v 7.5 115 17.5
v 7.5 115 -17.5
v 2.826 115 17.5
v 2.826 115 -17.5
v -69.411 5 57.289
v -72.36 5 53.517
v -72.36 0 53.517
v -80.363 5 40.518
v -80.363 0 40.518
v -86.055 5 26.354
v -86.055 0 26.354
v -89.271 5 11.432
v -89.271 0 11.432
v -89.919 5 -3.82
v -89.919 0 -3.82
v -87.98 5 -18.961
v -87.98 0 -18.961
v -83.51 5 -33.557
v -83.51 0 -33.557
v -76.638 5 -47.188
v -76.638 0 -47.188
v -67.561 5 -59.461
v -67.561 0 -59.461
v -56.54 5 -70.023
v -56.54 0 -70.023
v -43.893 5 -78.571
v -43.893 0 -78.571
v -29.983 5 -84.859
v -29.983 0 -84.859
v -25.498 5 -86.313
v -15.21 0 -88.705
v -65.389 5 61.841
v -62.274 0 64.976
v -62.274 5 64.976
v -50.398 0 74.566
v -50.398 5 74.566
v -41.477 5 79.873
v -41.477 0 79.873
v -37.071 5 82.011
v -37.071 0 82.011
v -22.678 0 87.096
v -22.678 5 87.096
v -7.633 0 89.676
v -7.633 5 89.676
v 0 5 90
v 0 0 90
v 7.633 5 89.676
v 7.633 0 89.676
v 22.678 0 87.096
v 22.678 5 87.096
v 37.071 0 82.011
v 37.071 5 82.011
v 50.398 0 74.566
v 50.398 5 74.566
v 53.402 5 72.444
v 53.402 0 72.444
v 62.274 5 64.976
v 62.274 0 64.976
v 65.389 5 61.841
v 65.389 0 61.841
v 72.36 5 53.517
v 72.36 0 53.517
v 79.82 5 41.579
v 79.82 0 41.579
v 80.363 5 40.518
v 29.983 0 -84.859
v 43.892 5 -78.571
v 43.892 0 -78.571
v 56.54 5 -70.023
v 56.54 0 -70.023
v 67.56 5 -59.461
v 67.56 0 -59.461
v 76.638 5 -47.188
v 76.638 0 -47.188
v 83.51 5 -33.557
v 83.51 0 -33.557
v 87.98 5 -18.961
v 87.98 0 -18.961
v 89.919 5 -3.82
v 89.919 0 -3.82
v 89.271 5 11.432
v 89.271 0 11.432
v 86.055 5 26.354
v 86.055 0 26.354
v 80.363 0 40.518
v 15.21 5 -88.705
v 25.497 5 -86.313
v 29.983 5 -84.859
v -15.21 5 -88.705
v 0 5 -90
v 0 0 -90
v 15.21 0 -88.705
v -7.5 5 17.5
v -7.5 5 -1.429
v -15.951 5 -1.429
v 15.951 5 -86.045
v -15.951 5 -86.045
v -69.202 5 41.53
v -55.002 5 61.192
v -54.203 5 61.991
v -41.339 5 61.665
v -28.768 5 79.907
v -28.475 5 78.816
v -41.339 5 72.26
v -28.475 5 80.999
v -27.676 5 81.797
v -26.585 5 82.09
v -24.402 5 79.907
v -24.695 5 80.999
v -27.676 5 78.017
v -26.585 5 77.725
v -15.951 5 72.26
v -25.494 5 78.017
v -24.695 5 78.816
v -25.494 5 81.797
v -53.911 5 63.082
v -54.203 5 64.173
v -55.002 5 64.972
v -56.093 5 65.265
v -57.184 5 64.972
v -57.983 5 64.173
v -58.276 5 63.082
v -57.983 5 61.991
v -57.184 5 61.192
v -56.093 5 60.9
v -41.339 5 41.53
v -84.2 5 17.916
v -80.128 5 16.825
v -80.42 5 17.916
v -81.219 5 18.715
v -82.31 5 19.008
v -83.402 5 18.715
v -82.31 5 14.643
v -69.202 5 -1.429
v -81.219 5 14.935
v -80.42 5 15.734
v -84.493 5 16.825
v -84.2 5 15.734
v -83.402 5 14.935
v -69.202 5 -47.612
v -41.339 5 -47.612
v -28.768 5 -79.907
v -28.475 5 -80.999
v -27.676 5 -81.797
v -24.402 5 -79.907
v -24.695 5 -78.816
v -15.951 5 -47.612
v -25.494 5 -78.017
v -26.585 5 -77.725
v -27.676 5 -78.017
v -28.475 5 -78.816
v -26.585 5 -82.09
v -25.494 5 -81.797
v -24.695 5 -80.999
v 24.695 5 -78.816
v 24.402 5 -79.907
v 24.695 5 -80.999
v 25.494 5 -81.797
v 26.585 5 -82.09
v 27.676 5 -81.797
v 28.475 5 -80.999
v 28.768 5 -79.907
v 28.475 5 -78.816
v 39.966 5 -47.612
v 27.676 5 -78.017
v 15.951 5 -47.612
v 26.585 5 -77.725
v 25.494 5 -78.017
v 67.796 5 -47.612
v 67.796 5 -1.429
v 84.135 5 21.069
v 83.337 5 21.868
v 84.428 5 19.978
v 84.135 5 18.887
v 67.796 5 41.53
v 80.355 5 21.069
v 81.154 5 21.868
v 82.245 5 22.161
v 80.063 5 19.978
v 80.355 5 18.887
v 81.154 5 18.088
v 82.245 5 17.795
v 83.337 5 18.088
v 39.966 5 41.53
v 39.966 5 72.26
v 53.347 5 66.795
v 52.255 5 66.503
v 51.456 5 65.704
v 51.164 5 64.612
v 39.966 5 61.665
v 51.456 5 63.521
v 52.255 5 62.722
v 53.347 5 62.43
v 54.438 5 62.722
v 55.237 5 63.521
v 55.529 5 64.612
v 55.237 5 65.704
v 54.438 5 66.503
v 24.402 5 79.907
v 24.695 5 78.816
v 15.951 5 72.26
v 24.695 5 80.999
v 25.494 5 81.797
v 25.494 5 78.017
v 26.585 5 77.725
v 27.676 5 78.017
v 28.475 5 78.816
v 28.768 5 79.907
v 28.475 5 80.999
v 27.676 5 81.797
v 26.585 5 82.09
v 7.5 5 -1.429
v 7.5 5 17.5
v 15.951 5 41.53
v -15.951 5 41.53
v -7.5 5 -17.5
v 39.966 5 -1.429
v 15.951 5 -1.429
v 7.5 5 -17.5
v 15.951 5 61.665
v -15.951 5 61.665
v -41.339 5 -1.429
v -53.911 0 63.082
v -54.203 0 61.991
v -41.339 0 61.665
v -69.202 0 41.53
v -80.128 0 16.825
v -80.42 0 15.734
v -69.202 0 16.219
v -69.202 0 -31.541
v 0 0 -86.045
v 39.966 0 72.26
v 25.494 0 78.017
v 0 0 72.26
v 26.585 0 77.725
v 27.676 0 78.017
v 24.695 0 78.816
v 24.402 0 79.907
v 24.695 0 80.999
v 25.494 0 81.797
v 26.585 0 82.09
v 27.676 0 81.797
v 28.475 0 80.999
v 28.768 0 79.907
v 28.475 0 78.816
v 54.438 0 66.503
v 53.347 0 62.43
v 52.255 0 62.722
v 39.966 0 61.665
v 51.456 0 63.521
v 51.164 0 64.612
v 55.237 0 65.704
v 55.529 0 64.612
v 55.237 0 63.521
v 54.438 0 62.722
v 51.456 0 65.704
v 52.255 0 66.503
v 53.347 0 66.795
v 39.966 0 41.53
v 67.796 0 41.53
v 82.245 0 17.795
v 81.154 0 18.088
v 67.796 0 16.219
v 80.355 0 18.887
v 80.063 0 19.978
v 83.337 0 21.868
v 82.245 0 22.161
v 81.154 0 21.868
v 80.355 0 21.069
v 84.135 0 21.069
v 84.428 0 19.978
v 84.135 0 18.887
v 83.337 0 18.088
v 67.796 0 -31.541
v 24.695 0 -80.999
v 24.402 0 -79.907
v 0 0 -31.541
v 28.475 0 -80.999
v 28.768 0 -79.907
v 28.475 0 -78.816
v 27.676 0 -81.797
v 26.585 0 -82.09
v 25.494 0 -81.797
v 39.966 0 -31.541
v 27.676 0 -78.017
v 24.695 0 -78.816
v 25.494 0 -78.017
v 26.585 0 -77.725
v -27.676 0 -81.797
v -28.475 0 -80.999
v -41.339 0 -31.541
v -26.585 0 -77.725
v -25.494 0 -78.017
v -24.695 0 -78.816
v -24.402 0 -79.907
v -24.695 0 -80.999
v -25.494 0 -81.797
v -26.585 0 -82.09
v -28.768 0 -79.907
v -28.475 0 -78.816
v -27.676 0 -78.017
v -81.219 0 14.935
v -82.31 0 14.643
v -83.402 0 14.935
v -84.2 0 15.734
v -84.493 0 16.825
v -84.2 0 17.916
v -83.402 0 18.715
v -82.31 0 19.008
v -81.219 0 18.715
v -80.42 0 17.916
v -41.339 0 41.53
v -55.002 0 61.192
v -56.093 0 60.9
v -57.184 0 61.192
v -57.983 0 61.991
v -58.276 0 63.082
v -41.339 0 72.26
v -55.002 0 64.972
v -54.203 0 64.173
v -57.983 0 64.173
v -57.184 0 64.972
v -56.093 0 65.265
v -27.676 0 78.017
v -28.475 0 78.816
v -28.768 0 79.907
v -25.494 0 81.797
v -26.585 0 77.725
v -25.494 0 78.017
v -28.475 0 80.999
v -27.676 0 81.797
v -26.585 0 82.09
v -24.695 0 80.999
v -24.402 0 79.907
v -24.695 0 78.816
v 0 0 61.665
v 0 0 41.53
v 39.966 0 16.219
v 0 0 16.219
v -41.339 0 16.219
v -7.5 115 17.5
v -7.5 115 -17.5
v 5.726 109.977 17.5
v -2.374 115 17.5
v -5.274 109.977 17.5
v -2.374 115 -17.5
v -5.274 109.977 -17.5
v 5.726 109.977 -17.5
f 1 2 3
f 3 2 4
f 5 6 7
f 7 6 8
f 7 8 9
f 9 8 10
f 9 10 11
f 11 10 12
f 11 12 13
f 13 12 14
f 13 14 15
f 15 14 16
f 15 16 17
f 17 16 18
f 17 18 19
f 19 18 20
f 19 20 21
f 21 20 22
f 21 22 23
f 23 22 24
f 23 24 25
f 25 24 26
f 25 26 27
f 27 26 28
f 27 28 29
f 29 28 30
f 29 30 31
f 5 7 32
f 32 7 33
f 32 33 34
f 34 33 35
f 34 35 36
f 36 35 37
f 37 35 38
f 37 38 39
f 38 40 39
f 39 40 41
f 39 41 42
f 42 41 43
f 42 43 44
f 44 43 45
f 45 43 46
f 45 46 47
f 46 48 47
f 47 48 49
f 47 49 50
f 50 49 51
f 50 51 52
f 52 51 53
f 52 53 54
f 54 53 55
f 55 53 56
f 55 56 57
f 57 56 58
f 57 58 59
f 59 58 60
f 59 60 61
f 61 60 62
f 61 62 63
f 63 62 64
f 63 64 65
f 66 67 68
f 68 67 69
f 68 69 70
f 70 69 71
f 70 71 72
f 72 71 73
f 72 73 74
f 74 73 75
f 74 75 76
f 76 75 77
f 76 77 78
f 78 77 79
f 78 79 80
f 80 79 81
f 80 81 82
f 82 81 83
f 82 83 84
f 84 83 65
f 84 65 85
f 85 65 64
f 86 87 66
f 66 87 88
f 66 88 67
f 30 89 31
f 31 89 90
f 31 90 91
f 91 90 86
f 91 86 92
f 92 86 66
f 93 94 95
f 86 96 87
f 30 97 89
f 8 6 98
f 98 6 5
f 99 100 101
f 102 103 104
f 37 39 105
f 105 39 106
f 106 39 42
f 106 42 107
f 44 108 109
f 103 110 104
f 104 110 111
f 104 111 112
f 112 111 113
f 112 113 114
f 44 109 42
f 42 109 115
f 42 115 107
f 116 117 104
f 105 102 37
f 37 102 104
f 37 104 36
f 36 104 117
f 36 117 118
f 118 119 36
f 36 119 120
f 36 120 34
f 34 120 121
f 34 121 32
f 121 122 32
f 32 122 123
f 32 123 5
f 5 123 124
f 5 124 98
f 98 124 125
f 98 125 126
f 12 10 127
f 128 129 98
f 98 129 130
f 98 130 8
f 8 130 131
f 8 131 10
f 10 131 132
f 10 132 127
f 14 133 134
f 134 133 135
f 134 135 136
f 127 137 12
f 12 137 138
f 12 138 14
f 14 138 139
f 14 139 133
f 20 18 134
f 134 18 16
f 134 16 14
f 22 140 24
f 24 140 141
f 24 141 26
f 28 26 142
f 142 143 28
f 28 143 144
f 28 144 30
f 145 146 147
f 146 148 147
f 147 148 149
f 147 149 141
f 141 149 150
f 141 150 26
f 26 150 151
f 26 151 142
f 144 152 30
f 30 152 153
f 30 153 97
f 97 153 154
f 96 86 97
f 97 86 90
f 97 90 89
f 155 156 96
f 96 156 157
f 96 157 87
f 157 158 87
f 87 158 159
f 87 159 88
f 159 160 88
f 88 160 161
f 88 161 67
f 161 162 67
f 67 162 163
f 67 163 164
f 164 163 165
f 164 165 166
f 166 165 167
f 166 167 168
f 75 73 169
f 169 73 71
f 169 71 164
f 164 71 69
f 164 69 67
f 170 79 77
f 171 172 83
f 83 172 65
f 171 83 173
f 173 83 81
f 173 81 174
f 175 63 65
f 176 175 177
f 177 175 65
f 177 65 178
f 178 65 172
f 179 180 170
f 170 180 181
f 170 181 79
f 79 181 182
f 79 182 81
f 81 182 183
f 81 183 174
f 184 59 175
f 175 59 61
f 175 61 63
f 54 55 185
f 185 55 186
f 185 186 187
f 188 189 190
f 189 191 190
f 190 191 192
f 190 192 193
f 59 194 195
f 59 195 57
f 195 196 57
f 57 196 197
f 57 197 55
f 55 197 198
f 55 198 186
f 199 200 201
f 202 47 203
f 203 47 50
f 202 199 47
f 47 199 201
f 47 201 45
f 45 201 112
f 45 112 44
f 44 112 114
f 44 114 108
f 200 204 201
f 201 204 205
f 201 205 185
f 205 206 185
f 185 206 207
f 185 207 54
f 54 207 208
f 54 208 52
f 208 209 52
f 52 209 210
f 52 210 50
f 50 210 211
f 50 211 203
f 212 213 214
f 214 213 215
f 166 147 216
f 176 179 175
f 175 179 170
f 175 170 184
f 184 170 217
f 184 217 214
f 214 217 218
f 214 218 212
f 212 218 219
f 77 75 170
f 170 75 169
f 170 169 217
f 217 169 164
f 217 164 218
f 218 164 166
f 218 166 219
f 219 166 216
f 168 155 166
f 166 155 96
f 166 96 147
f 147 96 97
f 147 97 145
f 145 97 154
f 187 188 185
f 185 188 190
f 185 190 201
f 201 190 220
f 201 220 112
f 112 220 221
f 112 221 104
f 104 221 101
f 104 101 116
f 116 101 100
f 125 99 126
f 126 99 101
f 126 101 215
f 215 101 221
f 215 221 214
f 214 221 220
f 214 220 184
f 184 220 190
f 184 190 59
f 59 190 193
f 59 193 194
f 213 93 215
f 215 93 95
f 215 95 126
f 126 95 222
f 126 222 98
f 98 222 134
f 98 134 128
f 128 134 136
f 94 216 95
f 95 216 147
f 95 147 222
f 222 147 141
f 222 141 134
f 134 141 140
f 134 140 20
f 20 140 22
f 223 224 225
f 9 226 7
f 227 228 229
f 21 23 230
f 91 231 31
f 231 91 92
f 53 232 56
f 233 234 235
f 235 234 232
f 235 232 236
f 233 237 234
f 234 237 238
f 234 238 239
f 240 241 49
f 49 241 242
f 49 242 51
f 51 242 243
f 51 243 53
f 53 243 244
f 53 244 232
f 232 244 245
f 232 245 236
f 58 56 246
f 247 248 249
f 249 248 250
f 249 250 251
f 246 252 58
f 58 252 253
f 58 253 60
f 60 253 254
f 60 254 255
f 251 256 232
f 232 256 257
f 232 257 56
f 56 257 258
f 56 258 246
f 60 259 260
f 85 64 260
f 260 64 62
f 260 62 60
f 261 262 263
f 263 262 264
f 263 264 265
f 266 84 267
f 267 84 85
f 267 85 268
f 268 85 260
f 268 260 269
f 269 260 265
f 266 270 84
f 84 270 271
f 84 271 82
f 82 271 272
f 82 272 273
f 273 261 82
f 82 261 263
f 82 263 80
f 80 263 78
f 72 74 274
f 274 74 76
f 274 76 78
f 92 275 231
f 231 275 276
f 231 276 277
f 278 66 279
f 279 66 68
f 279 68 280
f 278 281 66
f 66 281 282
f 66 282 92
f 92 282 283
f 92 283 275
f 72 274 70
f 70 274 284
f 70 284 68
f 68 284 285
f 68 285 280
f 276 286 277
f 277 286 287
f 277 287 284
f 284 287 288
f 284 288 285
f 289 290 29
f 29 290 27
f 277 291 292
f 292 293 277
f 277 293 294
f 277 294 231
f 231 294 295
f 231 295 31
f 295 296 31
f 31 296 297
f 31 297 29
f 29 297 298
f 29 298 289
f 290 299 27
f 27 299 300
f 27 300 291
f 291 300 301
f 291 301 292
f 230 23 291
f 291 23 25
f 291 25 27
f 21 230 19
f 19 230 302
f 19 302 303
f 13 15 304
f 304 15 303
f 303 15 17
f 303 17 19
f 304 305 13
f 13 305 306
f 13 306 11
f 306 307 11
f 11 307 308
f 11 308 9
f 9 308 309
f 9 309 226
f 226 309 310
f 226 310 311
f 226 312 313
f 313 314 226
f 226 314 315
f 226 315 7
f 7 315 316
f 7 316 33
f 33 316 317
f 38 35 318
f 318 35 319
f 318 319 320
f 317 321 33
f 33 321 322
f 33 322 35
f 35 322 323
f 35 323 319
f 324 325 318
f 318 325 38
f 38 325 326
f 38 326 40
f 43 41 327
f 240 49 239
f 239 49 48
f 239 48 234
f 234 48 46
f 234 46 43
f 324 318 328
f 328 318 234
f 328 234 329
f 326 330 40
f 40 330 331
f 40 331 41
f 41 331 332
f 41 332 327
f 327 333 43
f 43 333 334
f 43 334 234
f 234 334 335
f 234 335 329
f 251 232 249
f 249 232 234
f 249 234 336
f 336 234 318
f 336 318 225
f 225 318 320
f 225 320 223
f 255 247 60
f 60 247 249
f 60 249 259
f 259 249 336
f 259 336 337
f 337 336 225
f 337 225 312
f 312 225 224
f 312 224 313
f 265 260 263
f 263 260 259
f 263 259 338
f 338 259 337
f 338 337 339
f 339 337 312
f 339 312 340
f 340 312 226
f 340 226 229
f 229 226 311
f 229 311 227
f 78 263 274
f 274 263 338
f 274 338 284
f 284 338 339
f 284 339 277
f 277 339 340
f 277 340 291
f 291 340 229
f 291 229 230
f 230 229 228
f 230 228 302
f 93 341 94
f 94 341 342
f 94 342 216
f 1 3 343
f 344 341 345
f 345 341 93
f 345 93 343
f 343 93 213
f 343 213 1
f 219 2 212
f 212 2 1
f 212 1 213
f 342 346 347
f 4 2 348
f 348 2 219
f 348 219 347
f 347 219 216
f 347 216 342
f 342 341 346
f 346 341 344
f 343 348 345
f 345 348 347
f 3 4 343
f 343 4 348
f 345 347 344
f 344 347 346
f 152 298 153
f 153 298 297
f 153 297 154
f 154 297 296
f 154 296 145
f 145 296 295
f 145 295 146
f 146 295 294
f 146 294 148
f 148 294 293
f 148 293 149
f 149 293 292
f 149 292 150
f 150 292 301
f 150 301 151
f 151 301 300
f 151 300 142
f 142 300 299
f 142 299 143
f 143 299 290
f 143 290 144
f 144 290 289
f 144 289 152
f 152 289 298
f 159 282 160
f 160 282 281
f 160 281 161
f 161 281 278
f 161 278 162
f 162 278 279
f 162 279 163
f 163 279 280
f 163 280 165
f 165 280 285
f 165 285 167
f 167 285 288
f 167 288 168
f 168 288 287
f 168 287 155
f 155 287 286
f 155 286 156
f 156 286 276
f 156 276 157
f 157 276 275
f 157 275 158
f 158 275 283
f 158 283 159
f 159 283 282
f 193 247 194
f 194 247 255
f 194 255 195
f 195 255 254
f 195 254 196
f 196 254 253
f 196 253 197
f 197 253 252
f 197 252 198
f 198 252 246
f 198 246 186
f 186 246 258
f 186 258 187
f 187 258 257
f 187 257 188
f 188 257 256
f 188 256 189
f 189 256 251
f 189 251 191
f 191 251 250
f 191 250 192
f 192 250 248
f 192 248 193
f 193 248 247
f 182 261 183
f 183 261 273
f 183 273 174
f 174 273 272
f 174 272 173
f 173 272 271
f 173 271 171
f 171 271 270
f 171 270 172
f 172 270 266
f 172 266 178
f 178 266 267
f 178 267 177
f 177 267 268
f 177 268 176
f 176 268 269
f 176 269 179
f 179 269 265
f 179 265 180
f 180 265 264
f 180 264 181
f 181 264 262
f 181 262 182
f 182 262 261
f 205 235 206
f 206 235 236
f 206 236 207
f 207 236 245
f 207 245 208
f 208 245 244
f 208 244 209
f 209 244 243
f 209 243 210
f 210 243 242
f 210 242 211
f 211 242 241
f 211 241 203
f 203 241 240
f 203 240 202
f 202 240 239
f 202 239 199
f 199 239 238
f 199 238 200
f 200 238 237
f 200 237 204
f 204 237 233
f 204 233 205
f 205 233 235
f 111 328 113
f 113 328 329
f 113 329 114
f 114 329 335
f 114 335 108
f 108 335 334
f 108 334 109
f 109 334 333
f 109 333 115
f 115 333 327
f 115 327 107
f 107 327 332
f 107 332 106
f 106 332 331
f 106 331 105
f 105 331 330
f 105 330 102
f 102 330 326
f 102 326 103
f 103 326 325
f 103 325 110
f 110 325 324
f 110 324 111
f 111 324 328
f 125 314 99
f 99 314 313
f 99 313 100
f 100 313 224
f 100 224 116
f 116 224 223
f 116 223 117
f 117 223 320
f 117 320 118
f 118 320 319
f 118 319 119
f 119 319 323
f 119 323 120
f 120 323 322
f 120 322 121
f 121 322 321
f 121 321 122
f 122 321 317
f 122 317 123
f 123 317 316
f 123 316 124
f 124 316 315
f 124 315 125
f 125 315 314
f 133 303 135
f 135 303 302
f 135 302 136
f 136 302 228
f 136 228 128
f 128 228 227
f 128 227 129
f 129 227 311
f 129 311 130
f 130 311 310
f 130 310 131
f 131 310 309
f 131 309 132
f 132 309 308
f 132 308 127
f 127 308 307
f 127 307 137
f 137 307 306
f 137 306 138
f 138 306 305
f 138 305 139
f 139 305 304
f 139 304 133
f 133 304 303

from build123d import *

# Parameters (mm, degrees)
SKETCH1_R           = 90
BOSS_EXTRUDE1_DEPTH = 5
SKETCH2_W           = 15
SKETCH2_H           = 35
BOSS_EXTRUDE2_DEPTH = 110
CUT_EXTRUDE1_DEPTH  = 36
SKETCH4_R           = 2.18255
CUT_EXTRUDE2_DEPTH  = 62


with BuildPart() as part:
    # Sketch1 → Boss-Extrude1 (new body)
    with BuildSketch(Plane(origin=(0, 0, 0), x_dir=(1, 0, 0), z_dir=(0, 1, 0))):
        with Locations(Location((0, 0, 0), (0, 0, 270))):
            Circle(SKETCH1_R)
    extrude(amount=BOSS_EXTRUDE1_DEPTH)

    # Sketch2 → Boss-Extrude2 (add)
    with BuildSketch(Plane(origin=(0, 5, 0), x_dir=(1, 0, 0), z_dir=(0, 1, 0))):
        Rectangle(SKETCH2_W, SKETCH2_H)
    extrude(amount=BOSS_EXTRUDE2_DEPTH)

    # Sketch3 → Cut-Extrude1 (cut)
    with BuildSketch(Plane.XY.offset(17.5)):
        Polygon((-2.373551685, 115), (2.826448315, 115), (5.726448315, 109.977052658), (-5.273551685, 109.977052658), align=None)
    extrude(amount=-CUT_EXTRUDE1_DEPTH, mode=Mode.SUBTRACT)

    # Sketch4 → Cut-Extrude2 (cut)
    with BuildSketch(Plane(origin=(0, 0, 0), x_dir=(-1, 0, 0), z_dir=(0, -1, 0))):
        with Locations(Location((-26.585, 79.907325251, 0), (0, 0, 90))):
            Circle(SKETCH4_R)
        with Locations(Location((26.585, 79.907325251, 0), (0, 0, 90))):
            Circle(SKETCH4_R)
        with Locations(Location((82.310329065, -16.825152102, 0), (0, 0, 90))):
            Circle(SKETCH4_R)
        with Locations(Location((56.093218167, -63.082173149, 0), (0, 0, 90))):
            Circle(SKETCH4_R)
        with Locations(Location((26.585, -79.907325251, 0), (0, 0, 90))):
            Circle(SKETCH4_R)
        with Locations(Location((-26.585, -79.907325251, 0), (0, 0, 90))):
            Circle(SKETCH4_R)
        with Locations(Location((-53.346563788, -64.612502947, 0), (0, 0, 90))):
            Circle(SKETCH4_R)
        with Locations(Location((-82.245302282, -19.978089739, 0), (0, 0, 90))):
            Circle(SKETCH4_R)
    extrude(amount=-CUT_EXTRUDE2_DEPTH, mode=Mode.SUBTRACT)


solid = part.part
